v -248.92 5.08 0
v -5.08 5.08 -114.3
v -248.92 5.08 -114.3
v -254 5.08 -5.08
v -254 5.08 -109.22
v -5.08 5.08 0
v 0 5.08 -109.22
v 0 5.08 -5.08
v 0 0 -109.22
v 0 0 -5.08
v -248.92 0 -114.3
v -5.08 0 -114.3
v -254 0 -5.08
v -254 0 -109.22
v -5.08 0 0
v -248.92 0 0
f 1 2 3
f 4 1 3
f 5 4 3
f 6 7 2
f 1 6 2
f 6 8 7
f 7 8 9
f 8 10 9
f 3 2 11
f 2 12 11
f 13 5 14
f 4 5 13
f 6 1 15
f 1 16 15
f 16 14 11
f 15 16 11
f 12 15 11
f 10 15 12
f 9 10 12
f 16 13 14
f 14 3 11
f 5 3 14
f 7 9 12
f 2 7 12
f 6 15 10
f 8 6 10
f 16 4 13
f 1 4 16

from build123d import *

# Parameters (mm, degrees)
SKETCH1_W                 = 254
SKETCH1_H                 = 114.3
BOSS_EXTRUDE1_DEPTH       = 5.08
CHAMFER1_SIZE             = 5.08
BOSS_EXTRUDE3_START       = -127
BOSS_EXTRUDE3_DEPTH       = 38.1
BOSS_EXTRUDE4_DEPTH       = 2.54
SKETCH6_R                 = 3
BOSS_EXTRUDE5_DEPTH       = 6
SKETCH12_R                = 3
SKETCH12_R_2              = 3.5
BOSS_EXTRUDE7_DEPTH       = 6
F_3_0MM_DOWEL_HOLE1_D     = 3
F_3_0MM_DOWEL_HOLE1_DEPTH = 5.08
SKETCH13_W                = 114.3
SKETCH13_H                = 11.500997776
CUT_EXTRUDE1_DEPTH        = 255


with BuildPart() as part:
    # Sketch1 → Boss-Extrude1 (new body)
    with BuildSketch(Plane(origin=(0, 0, 0), x_dir=(1, 0, 0), z_dir=(0, 1, 0))):
        with Locations((-127, 57.15)):
            Rectangle(SKETCH1_W, SKETCH1_H)
    extrude(amount=BOSS_EXTRUDE1_DEPTH)

    # Chamfer1
    chamfer1_edges = [part.edges().sort_by_distance(p)[0] for p in [
        (0, 2.54, 0),
        (-254, 2.54, 0),
        (-254, 2.54, -114.3),
        (0, 2.54, -114.3),
    ]]
    chamfer(chamfer1_edges, length=CHAMFER1_SIZE)

    # Sketch3 → Boss-Extrude3 (add, symmetric)
    with BuildSketch(Plane(origin=(0, 0, 0), x_dir=(0, 0, -1), z_dir=(1, 0, 0)).offset(BOSS_EXTRUDE3_START)):
        Polygon((2.667, 5.08), (2.667, 6.35), (2.032, 7.62), (2.667, 8.89), (3.937, 8.89), (3.937, 5.08), align=None)
    boss_extrude3 = extrude(amount=BOSS_EXTRUDE3_DEPTH, both=True)

    # Mirror1: Boss-Extrude3 across plane
    add(boss_extrude3.mirror(Plane.XY.offset(-57.15)))

    # Sketch4 → Boss-Extrude4 (add)
    with BuildSketch(Plane(origin=(0, 5.08, 0), x_dir=(1, 0, 0), z_dir=(0, 1, 0))):
        Polygon((-6.184707571, 111.633), (-247.815292429, 111.633), (-251.333, 108.115292429), (-251.333, 6.184707571), (-247.815292429, 2.667), (-6.184707571, 2.667), (-2.667, 6.184707571), (-2.667, 108.115292429), align=None)
        Polygon((-7.247331044, 109.0676), (-246.752668956, 109.0676), (-248.7676, 107.052668956), (-248.7676, 7.247331044), (-246.752668956, 5.2324), (-7.247331044, 5.2324), (-5.2324, 7.247331044), (-5.2324, 107.052668956), align=None, mode=Mode.SUBTRACT)
    extrude(amount=BOSS_EXTRUDE4_DEPTH)

    # Sketch6 → Boss-Extrude5 (add)
    with BuildSketch(Plane(origin=(0, 5.08, 0), x_dir=(1, 0, 0), z_dir=(0, 1, 0))):
        with Locations((-30.6324, 67.31)):
            Circle(SKETCH6_R)
        with Locations((-30.6324, 19.05)):
            Circle(SKETCH6_R)
        with Locations((-82.7024, 52.07)):
            Circle(SKETCH6_R)
        with Locations((-82.7024, 24.13)):
            Circle(SKETCH6_R)
    extrude(amount=BOSS_EXTRUDE5_DEPTH)

    # Sketch12 → Boss-Extrude7 (add)
    with BuildSketch(Plane(origin=(0, 5.08, 0), x_dir=(1, 0, 0), z_dir=(0, 1, 0))):
        with Locations((-132.2324, 67.4624)):
            Circle(SKETCH12_R)
        with Locations((-132.2324, 11.5824)):
            Circle(SKETCH12_R)
        with Locations((-113.1824, 67.4624)):
            Circle(SKETCH12_R)
        with Locations((-113.1824, 11.5824)):
            Circle(SKETCH12_R)
        with Locations((-81.4324, 96.3676)):
            Circle(SKETCH12_R_2)
        with Locations((-171.4324, 96.3676)):
            Circle(SKETCH12_R_2)
    extrude(amount=BOSS_EXTRUDE7_DEPTH)

    # Ø3.0mm Dowel Hole1
    with Locations(Plane(origin=(0, 11.08, 0), x_dir=(1, 0, 0), z_dir=(0, 1, 0))):
        with Locations((-82.7024, 24.13), (-82.7024, 52.07), (-30.6324, 67.31), (-30.6324, 19.05), (-132.2324, 11.5824), (-113.1824, 11.5824), (-171.4324, 96.3676), (-132.2324, 67.4624), (-113.1824, 67.4624), (-81.4324, 96.3676)):
            Hole(F_3_0MM_DOWEL_HOLE1_D / 2, depth=F_3_0MM_DOWEL_HOLE1_DEPTH)

    # Sketch13 → Cut-Extrude1 (cut, through all)
    with BuildSketch(Plane.ZY.offset(254)):
        with Locations((-57.15, 10.830498888)):
            Rectangle(SKETCH13_W, SKETCH13_H)
    extrude(amount=-CUT_EXTRUDE1_DEPTH, mode=Mode.SUBTRACT)


solid = part.part
